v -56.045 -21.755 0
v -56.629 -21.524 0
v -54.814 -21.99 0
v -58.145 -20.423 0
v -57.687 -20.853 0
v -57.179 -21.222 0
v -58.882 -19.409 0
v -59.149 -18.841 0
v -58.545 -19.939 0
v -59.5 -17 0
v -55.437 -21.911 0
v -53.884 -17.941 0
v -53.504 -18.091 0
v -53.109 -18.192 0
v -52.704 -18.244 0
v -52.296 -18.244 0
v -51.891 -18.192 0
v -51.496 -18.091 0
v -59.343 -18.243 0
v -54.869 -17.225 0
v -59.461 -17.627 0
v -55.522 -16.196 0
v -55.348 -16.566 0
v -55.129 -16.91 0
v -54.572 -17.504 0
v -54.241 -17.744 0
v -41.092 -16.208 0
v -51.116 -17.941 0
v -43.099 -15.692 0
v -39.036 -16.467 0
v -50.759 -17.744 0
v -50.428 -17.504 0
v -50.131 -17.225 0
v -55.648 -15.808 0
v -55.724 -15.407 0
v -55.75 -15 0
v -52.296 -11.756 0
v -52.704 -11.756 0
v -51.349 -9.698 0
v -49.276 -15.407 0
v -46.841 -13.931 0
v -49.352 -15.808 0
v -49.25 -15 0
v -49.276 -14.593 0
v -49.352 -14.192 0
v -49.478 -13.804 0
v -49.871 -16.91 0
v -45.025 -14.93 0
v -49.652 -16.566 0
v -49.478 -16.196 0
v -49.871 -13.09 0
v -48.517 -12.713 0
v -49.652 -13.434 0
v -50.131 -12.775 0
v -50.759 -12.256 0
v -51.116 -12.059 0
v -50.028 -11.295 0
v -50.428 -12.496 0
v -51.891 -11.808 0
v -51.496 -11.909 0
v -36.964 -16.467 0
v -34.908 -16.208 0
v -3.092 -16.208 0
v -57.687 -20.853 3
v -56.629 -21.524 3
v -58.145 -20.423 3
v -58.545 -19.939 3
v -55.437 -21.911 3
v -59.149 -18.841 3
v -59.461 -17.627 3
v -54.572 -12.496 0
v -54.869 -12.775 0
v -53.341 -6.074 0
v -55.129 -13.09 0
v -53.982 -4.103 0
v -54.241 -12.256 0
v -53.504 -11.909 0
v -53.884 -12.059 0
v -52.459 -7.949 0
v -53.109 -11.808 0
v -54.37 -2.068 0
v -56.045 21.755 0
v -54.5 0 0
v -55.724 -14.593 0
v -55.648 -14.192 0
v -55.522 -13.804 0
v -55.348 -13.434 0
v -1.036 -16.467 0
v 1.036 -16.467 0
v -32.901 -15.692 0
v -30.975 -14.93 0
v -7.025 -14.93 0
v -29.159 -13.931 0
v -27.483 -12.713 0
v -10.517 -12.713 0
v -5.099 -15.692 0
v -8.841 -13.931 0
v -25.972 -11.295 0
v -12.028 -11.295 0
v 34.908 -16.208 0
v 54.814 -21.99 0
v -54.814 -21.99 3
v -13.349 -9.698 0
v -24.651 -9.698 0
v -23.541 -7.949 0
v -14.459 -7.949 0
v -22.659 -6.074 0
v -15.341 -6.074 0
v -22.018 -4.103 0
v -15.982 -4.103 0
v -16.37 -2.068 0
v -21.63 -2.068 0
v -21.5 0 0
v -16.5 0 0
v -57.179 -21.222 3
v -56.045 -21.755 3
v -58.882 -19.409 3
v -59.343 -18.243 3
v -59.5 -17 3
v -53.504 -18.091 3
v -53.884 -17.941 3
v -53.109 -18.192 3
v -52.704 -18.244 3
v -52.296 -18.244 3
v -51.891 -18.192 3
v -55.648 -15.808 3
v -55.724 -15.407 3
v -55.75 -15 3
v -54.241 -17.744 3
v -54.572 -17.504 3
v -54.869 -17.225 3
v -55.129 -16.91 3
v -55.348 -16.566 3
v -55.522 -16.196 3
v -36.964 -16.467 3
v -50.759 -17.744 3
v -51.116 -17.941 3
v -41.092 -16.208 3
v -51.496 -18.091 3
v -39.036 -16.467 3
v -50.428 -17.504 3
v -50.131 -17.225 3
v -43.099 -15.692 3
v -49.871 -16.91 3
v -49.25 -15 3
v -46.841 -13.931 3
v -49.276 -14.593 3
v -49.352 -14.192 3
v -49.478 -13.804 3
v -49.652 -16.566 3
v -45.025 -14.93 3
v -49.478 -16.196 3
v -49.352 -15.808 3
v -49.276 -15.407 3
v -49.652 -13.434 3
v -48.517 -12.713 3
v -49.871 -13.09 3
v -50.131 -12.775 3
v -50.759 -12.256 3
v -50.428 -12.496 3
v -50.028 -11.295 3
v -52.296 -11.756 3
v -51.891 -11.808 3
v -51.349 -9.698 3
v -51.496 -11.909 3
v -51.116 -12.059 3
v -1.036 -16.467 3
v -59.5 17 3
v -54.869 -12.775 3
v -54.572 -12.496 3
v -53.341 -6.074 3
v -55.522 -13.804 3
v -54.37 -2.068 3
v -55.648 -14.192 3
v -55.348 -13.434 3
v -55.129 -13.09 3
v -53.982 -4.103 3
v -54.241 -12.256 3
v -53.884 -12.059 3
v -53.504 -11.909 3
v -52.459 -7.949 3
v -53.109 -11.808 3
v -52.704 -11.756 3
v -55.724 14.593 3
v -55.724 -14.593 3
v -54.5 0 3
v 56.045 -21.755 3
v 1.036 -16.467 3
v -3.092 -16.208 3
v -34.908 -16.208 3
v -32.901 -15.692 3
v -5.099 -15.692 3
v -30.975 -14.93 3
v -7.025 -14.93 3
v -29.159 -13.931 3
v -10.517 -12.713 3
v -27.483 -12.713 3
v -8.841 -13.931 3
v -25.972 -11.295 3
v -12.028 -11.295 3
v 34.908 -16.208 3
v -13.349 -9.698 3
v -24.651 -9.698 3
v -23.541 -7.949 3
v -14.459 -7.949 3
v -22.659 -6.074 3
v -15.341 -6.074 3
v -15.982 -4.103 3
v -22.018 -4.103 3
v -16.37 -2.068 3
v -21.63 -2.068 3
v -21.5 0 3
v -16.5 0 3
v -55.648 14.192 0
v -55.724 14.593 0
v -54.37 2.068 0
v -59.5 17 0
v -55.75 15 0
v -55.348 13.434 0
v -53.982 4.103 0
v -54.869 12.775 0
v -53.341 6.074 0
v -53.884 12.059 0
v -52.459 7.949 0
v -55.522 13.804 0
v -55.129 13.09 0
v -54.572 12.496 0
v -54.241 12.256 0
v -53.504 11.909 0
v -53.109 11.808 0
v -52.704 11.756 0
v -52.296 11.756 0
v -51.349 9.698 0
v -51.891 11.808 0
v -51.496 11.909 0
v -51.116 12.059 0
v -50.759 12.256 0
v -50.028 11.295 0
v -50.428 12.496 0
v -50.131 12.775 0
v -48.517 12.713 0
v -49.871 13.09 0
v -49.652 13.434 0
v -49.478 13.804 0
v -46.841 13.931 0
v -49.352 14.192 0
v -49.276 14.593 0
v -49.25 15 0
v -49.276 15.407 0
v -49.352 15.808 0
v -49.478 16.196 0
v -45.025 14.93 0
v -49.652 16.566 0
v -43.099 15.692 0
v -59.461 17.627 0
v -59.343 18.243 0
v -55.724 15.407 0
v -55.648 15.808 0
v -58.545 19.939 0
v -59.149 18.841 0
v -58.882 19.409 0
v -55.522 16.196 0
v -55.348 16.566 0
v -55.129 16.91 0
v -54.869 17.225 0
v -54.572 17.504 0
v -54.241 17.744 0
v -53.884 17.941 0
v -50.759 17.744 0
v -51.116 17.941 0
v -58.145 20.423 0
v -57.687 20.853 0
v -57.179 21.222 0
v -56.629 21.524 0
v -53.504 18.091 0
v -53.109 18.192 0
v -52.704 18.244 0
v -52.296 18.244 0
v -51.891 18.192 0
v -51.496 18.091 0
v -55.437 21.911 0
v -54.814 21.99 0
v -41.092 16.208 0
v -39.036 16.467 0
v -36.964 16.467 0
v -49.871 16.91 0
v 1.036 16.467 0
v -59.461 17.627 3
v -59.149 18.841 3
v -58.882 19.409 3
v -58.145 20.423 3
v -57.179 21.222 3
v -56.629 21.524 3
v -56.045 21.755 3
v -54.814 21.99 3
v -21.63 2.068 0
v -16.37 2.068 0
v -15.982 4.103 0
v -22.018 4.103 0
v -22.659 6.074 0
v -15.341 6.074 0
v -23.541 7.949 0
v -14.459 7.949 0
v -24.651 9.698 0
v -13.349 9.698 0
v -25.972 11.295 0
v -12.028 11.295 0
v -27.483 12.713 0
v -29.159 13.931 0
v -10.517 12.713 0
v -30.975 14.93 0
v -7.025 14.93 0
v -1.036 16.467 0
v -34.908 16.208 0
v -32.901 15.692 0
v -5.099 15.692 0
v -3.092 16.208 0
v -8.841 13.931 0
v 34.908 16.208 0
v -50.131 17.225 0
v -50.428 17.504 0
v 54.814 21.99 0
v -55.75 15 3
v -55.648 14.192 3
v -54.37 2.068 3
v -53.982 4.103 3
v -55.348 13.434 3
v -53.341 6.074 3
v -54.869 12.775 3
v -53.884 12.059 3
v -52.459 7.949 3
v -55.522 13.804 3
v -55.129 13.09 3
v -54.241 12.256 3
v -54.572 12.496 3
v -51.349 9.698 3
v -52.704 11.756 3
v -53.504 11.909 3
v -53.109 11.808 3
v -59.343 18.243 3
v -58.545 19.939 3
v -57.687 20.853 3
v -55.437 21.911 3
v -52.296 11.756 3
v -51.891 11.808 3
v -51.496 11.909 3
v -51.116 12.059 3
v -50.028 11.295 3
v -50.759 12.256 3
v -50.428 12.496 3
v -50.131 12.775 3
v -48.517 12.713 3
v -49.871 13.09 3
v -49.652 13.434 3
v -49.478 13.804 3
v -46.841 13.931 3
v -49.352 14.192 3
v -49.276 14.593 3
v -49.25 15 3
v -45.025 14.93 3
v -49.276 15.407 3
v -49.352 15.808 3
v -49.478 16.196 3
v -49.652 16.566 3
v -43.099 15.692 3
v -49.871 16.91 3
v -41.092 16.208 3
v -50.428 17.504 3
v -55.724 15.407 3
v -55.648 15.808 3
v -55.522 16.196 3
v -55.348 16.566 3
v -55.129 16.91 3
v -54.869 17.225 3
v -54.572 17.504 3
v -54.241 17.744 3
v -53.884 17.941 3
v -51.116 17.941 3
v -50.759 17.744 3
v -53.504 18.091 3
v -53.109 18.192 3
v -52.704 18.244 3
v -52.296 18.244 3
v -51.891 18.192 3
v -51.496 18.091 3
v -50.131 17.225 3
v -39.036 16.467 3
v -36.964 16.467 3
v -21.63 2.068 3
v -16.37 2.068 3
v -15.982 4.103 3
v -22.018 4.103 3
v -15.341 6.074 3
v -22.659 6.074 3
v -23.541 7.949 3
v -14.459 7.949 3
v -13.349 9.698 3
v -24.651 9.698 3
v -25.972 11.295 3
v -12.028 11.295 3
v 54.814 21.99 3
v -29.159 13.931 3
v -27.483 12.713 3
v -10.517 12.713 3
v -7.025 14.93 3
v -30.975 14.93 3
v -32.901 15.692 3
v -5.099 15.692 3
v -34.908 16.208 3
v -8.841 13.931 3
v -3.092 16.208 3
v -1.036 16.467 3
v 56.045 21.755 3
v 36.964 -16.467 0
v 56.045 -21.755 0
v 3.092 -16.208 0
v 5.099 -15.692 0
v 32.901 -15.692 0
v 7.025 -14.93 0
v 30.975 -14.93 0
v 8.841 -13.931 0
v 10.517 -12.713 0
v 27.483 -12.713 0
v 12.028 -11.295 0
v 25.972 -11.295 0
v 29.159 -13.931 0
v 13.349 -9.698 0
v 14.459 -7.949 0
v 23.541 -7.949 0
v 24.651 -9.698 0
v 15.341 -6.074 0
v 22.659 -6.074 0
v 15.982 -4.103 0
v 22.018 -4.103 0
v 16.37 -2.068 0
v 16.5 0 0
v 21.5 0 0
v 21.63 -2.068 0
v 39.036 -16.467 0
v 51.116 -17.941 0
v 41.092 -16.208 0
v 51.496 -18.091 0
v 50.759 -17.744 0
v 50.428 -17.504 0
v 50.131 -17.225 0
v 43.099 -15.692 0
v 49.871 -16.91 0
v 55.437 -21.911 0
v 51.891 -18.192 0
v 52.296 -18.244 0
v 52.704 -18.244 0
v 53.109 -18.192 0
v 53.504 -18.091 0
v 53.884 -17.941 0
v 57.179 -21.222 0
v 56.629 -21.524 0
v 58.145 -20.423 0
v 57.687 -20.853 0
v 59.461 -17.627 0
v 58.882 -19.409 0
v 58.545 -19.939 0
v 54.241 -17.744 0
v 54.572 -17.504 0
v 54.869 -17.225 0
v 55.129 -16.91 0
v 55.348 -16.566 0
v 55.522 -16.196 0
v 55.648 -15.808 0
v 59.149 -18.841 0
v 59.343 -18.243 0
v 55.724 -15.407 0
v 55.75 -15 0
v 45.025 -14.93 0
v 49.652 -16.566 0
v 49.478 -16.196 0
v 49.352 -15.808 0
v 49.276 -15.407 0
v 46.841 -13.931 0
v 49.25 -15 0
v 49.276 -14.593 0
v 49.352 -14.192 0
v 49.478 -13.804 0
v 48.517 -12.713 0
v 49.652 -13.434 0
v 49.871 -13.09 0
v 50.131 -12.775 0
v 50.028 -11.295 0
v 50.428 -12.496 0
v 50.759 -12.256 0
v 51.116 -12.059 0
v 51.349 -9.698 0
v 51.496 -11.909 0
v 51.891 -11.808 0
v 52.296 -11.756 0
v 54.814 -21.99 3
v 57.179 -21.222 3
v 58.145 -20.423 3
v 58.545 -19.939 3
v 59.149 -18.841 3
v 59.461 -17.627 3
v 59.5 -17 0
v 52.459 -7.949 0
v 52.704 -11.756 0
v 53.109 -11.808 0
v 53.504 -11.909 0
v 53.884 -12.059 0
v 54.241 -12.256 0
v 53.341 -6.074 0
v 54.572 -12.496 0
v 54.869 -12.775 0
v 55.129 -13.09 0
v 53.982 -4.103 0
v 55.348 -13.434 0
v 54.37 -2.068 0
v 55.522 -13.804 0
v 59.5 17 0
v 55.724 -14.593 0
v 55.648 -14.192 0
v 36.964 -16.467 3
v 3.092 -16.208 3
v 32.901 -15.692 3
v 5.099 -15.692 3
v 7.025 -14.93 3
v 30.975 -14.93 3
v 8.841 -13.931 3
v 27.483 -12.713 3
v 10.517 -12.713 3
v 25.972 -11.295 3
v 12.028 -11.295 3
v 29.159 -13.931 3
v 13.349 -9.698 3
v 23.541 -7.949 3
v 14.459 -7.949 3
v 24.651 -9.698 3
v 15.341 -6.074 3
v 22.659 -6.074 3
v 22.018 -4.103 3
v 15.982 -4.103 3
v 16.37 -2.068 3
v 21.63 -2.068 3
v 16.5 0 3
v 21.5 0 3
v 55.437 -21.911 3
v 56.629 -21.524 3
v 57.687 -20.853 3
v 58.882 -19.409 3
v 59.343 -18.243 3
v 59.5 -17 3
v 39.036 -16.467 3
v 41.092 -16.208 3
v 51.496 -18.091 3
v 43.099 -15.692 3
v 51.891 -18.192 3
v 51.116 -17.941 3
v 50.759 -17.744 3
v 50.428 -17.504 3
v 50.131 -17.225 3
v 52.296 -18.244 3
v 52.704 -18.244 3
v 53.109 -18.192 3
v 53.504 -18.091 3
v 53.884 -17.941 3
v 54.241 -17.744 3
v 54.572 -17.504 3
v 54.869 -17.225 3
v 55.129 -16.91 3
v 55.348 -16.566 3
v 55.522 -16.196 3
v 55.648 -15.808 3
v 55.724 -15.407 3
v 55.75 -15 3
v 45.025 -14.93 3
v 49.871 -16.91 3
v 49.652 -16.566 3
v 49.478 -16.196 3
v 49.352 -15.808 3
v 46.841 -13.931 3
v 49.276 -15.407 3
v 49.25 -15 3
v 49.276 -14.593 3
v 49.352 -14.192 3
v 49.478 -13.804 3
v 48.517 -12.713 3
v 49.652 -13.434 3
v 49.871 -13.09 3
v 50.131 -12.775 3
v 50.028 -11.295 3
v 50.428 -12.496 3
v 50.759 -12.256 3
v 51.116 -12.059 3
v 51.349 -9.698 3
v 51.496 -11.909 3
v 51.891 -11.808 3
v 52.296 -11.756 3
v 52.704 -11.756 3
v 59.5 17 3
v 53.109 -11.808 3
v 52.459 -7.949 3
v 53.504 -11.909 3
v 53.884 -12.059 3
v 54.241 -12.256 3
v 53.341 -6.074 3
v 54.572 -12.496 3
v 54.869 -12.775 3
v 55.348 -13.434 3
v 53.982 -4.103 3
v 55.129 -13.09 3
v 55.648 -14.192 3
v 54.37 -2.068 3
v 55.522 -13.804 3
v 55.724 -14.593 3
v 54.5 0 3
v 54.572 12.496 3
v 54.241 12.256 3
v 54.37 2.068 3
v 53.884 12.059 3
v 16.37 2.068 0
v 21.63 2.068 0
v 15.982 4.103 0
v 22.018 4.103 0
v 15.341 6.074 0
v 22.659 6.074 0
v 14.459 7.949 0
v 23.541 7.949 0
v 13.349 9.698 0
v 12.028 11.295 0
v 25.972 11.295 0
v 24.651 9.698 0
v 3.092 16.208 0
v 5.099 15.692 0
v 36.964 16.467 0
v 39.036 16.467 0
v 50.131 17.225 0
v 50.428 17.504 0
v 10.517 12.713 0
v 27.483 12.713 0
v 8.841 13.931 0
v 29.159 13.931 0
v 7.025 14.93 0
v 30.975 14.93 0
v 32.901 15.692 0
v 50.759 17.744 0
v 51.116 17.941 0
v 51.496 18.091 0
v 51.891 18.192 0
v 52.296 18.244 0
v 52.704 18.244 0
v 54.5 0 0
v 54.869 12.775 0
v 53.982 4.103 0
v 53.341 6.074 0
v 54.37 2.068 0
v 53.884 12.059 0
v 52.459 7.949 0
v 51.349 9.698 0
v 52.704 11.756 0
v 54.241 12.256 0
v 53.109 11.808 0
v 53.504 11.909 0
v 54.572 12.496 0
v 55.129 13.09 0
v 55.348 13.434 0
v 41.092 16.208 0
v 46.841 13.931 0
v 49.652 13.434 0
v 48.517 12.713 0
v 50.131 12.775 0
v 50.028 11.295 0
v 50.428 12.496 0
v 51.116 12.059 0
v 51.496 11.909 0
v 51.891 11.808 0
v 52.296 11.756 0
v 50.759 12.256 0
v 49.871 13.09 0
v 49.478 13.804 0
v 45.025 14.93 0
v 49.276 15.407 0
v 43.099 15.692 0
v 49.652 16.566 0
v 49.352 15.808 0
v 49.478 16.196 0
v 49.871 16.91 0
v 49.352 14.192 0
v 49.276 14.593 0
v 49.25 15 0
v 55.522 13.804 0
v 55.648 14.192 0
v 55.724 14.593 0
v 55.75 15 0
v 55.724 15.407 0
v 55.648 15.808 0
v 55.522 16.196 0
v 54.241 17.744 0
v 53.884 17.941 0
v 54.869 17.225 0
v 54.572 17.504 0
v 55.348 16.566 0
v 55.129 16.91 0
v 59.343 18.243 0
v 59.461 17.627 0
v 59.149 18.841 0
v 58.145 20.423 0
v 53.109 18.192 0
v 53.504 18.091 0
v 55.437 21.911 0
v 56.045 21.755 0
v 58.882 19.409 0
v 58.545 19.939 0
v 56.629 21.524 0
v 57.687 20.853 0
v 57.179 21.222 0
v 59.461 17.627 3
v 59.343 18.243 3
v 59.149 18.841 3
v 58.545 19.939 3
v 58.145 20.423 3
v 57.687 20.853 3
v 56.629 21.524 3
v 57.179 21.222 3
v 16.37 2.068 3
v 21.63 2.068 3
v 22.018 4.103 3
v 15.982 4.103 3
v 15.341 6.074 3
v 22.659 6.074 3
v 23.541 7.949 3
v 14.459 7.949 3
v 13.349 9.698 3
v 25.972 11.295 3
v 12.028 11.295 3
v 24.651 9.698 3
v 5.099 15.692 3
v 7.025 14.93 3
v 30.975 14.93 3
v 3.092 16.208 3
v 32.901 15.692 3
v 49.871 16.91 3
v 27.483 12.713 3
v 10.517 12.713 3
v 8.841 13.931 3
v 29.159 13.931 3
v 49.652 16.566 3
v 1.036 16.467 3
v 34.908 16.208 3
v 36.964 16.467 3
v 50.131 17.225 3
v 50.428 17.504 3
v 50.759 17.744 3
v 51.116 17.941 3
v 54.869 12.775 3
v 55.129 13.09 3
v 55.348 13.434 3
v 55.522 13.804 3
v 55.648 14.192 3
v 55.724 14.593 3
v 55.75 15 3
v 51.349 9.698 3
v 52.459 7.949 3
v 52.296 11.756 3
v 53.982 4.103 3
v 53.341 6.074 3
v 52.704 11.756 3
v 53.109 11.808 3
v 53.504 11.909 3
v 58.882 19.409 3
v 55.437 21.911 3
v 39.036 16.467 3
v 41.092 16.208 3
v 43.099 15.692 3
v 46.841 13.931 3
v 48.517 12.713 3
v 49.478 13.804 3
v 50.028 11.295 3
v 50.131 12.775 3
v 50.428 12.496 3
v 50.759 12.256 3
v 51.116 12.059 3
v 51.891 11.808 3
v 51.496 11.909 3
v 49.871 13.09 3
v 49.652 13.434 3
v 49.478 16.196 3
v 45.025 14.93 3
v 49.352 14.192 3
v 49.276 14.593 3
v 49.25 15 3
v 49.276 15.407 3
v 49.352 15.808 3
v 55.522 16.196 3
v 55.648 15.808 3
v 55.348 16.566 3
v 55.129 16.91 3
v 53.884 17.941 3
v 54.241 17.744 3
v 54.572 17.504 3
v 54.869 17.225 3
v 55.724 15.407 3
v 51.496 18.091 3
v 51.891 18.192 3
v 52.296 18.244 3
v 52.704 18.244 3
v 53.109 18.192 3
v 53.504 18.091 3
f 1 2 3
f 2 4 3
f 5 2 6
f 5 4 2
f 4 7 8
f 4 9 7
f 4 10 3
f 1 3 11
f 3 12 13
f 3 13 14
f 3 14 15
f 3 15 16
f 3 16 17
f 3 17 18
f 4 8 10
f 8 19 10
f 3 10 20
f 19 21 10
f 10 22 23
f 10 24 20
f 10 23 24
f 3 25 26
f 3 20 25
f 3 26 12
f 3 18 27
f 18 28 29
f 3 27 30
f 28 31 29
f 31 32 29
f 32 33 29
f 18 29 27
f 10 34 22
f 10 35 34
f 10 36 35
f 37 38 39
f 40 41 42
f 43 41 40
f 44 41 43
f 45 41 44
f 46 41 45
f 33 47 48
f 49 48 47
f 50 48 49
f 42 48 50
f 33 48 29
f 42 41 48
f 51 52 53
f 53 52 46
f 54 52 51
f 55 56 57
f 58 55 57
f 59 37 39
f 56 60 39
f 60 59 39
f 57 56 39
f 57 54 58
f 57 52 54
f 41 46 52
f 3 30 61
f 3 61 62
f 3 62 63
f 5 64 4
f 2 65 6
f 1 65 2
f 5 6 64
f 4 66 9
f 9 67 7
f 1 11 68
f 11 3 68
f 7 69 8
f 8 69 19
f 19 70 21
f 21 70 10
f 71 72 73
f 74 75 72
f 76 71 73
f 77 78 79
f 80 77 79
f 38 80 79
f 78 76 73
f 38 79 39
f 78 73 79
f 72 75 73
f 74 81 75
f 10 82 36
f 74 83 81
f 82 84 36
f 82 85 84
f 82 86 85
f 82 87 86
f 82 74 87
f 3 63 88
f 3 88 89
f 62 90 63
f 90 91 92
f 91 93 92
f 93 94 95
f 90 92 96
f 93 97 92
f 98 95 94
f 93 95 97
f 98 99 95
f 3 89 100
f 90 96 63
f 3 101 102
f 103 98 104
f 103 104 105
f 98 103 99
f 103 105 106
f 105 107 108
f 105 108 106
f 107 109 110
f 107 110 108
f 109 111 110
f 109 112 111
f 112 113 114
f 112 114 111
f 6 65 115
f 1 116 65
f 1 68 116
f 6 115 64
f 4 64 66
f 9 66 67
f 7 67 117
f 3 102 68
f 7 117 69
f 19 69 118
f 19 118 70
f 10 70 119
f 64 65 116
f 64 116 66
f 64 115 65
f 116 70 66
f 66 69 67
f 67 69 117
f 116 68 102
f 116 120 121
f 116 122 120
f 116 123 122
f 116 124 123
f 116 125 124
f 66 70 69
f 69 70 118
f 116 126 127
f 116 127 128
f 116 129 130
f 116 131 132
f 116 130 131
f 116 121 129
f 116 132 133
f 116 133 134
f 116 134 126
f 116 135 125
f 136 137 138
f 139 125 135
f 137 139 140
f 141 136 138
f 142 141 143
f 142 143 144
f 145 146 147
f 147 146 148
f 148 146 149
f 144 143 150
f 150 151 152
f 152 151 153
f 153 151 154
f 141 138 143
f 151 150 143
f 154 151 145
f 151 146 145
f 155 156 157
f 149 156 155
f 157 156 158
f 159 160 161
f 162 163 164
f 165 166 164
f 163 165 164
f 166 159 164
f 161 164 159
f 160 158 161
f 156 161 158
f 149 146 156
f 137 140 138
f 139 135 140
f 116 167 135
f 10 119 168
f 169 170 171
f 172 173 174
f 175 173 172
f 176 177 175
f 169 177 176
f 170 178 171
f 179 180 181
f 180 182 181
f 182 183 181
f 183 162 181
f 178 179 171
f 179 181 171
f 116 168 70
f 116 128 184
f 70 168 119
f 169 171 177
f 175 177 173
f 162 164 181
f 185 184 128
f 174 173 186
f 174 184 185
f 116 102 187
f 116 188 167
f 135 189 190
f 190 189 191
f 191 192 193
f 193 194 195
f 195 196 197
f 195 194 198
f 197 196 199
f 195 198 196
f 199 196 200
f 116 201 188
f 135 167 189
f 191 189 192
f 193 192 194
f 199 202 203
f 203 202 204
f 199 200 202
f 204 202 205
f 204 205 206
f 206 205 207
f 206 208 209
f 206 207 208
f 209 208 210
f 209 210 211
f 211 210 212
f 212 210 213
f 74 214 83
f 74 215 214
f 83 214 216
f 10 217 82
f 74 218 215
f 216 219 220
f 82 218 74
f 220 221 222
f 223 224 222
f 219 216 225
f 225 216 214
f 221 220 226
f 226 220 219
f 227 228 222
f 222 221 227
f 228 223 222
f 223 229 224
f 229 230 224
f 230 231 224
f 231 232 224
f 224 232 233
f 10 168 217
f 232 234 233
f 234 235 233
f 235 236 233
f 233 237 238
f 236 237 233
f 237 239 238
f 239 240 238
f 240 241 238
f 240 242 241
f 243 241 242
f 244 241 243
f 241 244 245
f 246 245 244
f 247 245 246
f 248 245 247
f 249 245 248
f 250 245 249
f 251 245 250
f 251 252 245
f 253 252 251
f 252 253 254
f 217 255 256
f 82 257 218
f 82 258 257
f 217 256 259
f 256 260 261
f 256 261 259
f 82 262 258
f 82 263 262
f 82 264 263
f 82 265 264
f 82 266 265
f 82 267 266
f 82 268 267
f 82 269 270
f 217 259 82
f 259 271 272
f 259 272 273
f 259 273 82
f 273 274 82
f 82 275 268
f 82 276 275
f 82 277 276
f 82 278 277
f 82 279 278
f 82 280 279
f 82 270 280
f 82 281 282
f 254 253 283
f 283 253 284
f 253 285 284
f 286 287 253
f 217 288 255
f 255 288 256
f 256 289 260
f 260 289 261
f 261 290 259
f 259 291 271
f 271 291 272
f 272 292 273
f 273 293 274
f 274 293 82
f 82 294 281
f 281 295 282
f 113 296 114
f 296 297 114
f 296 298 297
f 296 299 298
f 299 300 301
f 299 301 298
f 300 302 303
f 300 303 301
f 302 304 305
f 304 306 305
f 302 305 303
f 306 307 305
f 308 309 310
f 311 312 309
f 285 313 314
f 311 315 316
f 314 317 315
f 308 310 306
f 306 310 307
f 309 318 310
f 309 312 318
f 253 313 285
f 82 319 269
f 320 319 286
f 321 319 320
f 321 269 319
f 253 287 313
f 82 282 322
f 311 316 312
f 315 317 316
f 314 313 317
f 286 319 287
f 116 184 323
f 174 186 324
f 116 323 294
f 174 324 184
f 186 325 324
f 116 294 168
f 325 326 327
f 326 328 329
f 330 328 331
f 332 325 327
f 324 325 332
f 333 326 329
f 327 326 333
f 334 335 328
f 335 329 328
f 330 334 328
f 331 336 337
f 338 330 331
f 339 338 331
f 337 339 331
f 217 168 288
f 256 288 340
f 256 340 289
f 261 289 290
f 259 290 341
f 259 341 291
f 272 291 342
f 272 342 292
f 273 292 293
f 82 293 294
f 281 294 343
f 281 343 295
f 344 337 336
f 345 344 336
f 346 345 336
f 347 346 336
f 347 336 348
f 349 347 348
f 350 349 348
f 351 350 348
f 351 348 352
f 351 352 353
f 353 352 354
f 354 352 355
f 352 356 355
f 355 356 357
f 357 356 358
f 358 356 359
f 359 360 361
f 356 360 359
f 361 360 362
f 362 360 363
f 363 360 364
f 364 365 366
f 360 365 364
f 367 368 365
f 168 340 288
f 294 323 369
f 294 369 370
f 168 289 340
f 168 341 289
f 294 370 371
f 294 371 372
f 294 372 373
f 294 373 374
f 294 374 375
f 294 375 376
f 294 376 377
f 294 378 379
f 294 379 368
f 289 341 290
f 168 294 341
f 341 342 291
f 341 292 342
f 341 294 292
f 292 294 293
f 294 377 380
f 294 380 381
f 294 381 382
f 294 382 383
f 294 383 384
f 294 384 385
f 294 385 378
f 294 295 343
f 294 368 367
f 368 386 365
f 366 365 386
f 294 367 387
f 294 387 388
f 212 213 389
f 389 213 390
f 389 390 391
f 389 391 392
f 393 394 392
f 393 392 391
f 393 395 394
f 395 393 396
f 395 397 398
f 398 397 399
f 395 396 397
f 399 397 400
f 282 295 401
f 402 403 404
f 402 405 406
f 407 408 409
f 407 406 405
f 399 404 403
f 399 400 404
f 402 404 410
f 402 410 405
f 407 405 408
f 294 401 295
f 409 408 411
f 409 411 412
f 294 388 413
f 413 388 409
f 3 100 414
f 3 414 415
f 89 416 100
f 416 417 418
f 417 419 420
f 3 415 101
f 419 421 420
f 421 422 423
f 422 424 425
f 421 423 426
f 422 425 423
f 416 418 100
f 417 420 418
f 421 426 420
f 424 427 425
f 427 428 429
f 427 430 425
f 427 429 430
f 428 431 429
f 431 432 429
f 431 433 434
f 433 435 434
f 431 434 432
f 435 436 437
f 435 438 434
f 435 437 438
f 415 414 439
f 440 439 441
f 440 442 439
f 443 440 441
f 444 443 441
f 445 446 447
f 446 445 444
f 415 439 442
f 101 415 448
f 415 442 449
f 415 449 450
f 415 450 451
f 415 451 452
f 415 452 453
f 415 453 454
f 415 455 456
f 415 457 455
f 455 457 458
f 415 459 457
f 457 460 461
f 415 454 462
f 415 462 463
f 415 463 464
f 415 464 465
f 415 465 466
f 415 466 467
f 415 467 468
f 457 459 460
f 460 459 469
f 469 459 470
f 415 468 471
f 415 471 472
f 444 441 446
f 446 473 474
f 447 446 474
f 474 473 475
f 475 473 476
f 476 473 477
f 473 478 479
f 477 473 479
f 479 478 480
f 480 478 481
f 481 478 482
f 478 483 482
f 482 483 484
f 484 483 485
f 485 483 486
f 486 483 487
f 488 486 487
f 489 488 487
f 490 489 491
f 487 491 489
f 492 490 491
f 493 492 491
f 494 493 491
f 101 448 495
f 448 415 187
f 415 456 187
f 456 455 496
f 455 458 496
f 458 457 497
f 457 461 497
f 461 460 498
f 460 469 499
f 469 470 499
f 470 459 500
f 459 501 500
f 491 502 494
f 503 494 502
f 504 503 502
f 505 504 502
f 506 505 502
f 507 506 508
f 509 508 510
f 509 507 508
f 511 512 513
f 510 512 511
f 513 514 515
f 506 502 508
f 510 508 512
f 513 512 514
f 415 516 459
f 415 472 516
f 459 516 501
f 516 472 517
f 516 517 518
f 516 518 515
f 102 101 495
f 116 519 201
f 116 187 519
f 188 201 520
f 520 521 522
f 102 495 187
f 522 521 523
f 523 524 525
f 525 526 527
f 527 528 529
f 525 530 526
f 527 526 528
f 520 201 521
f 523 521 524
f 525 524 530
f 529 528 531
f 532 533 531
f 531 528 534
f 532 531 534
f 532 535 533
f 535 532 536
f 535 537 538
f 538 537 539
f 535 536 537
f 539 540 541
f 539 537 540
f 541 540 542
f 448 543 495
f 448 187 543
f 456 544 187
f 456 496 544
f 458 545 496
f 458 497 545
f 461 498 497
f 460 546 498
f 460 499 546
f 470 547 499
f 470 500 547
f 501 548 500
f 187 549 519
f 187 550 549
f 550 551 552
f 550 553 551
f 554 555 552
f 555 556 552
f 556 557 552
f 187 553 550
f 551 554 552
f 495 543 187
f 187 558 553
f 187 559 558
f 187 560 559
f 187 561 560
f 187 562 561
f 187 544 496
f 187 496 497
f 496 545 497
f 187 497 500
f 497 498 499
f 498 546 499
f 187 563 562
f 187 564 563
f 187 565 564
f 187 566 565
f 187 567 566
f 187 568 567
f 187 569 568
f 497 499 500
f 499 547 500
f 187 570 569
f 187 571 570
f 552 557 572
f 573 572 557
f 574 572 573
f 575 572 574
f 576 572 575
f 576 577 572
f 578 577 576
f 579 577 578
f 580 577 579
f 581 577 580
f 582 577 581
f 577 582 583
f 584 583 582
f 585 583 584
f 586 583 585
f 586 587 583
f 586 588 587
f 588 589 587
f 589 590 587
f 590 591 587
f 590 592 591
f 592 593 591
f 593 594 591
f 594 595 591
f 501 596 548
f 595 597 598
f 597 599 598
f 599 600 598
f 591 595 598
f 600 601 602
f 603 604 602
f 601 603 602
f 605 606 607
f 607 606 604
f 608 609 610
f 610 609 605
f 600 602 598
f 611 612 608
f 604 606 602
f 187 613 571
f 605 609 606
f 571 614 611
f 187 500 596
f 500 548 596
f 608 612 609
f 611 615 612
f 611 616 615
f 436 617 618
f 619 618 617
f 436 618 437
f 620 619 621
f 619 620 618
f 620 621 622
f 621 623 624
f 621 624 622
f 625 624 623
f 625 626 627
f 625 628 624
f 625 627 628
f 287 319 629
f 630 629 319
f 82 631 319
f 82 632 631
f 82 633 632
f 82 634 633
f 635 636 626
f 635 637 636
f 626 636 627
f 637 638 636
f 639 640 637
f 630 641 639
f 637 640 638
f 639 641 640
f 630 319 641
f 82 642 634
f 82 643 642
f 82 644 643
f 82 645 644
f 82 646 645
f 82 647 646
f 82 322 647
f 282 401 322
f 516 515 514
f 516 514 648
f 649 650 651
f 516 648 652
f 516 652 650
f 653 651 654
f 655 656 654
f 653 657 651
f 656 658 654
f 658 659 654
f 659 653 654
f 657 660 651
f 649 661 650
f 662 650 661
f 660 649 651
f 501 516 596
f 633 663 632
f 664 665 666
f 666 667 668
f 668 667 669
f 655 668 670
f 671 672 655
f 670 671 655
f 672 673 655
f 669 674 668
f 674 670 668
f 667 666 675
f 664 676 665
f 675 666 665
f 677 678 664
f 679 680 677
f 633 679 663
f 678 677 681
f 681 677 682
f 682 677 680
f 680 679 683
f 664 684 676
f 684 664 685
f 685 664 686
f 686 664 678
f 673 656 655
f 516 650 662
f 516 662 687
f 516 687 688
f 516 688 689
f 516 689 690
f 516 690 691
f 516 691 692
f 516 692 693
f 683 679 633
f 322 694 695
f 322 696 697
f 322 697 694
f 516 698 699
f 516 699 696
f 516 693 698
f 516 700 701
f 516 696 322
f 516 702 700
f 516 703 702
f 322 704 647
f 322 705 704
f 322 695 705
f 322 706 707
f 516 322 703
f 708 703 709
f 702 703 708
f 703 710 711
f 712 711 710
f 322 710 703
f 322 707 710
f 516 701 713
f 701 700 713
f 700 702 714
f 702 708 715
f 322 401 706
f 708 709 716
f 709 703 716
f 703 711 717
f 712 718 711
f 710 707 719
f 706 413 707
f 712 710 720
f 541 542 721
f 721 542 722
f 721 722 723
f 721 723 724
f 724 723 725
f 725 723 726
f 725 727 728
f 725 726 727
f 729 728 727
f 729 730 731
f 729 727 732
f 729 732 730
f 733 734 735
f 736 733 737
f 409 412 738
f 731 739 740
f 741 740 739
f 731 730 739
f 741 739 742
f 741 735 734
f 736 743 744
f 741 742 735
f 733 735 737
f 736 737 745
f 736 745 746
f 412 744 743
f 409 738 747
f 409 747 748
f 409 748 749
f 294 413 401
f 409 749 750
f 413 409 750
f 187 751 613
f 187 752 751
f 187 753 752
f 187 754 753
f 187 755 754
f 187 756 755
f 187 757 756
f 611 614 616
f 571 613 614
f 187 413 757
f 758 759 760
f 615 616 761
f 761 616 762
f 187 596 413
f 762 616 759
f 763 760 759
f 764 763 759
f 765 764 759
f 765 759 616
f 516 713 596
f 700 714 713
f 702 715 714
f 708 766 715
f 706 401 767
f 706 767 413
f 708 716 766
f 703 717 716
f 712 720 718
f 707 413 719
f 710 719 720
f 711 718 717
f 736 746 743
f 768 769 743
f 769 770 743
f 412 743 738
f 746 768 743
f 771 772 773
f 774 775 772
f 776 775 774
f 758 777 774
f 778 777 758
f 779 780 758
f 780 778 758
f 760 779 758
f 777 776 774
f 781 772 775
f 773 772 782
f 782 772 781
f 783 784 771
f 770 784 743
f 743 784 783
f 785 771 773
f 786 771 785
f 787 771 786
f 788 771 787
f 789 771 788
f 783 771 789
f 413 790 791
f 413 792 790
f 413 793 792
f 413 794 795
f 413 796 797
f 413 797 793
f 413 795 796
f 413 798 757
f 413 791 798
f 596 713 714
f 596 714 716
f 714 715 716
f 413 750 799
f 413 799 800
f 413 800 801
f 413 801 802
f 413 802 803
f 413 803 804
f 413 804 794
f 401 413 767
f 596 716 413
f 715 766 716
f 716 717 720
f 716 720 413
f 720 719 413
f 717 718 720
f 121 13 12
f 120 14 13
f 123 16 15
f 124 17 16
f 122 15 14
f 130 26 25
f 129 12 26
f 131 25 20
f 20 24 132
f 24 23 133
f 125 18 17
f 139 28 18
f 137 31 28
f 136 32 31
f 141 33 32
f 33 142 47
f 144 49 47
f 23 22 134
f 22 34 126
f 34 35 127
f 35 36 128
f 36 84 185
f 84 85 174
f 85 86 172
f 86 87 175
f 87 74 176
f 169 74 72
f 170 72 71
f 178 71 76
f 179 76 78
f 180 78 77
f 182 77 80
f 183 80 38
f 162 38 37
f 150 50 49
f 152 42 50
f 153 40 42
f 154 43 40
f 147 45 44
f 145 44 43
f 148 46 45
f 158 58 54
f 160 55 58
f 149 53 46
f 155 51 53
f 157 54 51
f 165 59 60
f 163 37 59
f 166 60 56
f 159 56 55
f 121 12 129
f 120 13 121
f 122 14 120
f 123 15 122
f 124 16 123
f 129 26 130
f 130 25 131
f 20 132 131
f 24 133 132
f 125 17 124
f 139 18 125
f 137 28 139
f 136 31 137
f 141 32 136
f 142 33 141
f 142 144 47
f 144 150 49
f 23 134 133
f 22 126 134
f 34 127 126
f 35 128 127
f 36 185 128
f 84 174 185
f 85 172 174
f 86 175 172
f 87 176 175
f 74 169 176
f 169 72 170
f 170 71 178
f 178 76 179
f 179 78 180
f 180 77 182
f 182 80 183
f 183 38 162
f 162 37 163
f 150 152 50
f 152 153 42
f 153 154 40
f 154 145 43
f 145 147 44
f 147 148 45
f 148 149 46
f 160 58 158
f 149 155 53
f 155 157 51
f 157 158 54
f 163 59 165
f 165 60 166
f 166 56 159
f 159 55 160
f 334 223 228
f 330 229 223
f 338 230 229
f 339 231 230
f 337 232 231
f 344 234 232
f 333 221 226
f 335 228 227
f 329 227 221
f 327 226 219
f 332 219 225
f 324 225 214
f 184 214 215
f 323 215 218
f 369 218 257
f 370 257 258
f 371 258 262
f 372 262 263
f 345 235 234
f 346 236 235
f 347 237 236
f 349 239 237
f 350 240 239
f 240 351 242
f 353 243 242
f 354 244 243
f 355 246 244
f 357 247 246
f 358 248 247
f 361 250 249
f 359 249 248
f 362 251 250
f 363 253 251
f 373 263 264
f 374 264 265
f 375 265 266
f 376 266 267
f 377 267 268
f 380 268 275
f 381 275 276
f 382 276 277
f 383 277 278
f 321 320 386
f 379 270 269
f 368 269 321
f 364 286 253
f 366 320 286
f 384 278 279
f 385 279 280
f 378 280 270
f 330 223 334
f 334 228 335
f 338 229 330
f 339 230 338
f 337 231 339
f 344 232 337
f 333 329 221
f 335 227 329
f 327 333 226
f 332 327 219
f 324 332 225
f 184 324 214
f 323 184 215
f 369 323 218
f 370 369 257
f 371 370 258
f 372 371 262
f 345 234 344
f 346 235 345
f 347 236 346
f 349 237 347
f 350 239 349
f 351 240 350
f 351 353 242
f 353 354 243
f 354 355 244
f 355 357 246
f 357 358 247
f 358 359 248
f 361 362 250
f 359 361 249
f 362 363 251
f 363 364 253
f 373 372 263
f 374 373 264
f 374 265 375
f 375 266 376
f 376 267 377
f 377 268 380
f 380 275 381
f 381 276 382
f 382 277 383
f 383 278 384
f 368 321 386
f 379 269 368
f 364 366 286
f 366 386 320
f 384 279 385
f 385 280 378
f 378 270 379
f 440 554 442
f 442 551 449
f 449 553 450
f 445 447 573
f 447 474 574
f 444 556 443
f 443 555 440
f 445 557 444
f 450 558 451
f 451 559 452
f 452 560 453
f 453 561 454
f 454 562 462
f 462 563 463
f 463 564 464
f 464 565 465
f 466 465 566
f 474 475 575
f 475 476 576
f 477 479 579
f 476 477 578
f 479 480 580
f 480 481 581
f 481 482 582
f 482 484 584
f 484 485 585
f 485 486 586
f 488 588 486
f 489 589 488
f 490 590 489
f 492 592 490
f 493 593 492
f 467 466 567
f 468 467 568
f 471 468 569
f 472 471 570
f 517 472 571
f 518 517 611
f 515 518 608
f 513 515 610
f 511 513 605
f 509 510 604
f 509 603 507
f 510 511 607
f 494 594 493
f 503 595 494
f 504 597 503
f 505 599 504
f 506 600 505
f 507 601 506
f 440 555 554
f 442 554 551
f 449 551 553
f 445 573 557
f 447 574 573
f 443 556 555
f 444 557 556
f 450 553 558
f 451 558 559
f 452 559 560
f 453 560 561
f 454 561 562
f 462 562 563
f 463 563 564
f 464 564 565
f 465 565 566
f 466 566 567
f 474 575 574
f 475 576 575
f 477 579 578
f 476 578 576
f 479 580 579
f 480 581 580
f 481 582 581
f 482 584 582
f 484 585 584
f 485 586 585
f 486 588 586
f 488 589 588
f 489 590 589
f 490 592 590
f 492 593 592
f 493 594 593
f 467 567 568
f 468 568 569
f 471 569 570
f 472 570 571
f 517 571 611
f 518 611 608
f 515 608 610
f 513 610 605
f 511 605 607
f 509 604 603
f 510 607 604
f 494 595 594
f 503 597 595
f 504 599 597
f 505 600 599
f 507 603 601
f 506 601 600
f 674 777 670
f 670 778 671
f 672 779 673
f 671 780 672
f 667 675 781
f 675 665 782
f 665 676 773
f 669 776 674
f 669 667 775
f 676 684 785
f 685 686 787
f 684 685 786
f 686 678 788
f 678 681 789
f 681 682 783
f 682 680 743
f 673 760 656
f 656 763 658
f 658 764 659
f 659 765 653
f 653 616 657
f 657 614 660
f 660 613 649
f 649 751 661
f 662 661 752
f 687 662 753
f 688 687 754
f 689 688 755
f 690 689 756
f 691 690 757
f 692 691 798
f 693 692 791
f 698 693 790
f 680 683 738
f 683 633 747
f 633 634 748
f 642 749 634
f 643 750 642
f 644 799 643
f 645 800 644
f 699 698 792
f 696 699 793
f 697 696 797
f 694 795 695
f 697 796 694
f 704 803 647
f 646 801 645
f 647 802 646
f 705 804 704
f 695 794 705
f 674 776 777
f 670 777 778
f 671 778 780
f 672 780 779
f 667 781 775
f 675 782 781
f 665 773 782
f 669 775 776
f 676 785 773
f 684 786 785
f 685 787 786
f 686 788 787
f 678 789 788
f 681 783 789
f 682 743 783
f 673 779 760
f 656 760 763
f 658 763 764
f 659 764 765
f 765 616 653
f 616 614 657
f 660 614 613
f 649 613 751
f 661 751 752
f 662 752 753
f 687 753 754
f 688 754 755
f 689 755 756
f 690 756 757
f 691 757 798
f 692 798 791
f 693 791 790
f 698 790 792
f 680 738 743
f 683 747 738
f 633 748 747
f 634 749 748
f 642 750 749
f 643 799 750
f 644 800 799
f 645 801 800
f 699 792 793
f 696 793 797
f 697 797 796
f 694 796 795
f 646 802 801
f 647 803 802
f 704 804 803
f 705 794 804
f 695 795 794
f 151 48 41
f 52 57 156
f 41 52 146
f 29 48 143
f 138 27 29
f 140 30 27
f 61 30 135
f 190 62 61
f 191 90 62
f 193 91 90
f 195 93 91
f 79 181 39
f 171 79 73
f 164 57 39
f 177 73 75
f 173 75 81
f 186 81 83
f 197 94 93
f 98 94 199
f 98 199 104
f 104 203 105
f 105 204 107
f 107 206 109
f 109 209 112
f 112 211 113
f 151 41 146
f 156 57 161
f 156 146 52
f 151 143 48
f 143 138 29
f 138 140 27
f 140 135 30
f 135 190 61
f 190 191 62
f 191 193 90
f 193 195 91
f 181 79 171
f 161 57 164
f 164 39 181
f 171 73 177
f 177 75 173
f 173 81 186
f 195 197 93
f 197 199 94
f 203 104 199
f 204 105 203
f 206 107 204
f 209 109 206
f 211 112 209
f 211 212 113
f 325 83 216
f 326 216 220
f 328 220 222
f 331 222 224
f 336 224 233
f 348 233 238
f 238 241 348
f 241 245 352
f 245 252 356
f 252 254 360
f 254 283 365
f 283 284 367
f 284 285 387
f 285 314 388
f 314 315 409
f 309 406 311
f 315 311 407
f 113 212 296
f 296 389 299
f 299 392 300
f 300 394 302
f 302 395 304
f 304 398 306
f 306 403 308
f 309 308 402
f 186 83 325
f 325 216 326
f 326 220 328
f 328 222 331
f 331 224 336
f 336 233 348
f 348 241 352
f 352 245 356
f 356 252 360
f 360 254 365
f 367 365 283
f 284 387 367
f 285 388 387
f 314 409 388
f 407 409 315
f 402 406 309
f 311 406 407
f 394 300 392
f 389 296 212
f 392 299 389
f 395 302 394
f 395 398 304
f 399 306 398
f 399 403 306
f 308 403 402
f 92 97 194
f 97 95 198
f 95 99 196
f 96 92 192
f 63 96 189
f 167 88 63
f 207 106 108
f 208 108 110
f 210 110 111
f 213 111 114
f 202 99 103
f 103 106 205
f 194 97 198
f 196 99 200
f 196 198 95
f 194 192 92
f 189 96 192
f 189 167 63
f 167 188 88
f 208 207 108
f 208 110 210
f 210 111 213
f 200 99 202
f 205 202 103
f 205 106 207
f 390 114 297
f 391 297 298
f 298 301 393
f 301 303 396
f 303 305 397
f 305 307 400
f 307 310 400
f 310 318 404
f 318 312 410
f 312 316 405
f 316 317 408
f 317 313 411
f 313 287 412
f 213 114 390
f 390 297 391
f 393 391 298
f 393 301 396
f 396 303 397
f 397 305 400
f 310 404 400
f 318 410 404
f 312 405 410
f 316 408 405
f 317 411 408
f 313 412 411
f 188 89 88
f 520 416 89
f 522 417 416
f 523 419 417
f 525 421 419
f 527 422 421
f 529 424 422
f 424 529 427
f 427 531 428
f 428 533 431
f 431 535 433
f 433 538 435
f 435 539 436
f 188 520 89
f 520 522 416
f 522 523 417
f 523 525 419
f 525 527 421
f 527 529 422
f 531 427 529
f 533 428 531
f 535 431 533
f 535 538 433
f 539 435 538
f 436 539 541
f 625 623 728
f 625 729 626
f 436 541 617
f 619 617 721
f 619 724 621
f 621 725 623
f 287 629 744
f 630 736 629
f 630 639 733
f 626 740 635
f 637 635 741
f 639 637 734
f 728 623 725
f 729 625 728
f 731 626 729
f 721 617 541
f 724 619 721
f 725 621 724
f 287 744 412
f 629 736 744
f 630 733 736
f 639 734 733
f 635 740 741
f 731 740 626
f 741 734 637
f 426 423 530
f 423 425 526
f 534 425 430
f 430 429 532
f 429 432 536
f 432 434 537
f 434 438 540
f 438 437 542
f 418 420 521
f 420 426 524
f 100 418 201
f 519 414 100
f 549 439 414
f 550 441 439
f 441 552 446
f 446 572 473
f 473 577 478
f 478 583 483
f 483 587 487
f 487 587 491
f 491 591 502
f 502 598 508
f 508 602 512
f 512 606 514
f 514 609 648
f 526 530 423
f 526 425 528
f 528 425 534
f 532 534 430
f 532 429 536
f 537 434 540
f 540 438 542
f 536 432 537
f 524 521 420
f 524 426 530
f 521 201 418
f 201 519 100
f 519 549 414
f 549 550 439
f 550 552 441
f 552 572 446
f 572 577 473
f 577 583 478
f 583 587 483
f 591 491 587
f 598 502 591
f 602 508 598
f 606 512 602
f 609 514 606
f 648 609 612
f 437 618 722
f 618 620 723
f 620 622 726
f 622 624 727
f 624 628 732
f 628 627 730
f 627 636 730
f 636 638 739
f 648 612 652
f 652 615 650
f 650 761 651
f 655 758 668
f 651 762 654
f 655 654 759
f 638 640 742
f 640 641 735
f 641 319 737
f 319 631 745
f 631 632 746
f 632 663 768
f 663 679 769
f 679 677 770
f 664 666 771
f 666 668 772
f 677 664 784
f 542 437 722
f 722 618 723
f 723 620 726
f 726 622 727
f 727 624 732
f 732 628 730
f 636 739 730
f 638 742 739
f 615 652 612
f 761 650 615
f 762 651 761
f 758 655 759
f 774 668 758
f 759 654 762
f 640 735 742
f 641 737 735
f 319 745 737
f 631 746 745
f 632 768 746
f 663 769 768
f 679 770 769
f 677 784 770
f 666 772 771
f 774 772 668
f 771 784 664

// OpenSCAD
$fn = 50;

difference() {
	union() {
		hull() {
			translate(v = [-54.5, 17.0, 0]) {
				cylinder(h = 3, r = 5);
			}
			translate(v = [54.5, 17.0, 0]) {
				cylinder(h = 3, r = 5);
			}
			translate(v = [-54.5, -17.0, 0]) {
				cylinder(h = 3, r = 5);
			}
			translate(v = [54.5, -17.0, 0]) {
				cylinder(h = 3, r = 5);
			}
		}
	}
	union() {
		translate(v = [-52.5, -15.0, -100.0]) {
			cylinder(h = 200, r = 3.25);
		}
		translate(v = [-52.5, 15.0, -100.0]) {
			cylinder(h = 200, r = 3.25);
		}
		translate(v = [52.5, -15.0, -100.0]) {
			cylinder(h = 200, r = 3.25);
		}
		translate(v = [52.5, 15.0, -100.0]) {
			cylinder(h = 200, r = 3.25);
		}
		translate(v = [-52.5, -15.0, -100.0]) {
			cylinder(h = 200, r = 1.8);
		}
		translate(v = [-52.5, 15.0, -100.0]) {
			cylinder(h = 200, r = 1.8);
		}
		translate(v = [52.5, -15.0, -100.0]) {
			cylinder(h = 200, r = 1.8);
		}
		translate(v = [52.5, 15.0, -100.0]) {
			cylinder(h = 200, r = 1.8);
		}
		translate(v = [-38.0, 0, 0.0]) {
			cylinder(h = 3, r = 16.5);
		}
		cylinder(h = 3, r = 16.5);
		translate(v = [38.0, 0, 0.0]) {
			cylinder(h = 3, r = 16.5);
		}
	}
}
